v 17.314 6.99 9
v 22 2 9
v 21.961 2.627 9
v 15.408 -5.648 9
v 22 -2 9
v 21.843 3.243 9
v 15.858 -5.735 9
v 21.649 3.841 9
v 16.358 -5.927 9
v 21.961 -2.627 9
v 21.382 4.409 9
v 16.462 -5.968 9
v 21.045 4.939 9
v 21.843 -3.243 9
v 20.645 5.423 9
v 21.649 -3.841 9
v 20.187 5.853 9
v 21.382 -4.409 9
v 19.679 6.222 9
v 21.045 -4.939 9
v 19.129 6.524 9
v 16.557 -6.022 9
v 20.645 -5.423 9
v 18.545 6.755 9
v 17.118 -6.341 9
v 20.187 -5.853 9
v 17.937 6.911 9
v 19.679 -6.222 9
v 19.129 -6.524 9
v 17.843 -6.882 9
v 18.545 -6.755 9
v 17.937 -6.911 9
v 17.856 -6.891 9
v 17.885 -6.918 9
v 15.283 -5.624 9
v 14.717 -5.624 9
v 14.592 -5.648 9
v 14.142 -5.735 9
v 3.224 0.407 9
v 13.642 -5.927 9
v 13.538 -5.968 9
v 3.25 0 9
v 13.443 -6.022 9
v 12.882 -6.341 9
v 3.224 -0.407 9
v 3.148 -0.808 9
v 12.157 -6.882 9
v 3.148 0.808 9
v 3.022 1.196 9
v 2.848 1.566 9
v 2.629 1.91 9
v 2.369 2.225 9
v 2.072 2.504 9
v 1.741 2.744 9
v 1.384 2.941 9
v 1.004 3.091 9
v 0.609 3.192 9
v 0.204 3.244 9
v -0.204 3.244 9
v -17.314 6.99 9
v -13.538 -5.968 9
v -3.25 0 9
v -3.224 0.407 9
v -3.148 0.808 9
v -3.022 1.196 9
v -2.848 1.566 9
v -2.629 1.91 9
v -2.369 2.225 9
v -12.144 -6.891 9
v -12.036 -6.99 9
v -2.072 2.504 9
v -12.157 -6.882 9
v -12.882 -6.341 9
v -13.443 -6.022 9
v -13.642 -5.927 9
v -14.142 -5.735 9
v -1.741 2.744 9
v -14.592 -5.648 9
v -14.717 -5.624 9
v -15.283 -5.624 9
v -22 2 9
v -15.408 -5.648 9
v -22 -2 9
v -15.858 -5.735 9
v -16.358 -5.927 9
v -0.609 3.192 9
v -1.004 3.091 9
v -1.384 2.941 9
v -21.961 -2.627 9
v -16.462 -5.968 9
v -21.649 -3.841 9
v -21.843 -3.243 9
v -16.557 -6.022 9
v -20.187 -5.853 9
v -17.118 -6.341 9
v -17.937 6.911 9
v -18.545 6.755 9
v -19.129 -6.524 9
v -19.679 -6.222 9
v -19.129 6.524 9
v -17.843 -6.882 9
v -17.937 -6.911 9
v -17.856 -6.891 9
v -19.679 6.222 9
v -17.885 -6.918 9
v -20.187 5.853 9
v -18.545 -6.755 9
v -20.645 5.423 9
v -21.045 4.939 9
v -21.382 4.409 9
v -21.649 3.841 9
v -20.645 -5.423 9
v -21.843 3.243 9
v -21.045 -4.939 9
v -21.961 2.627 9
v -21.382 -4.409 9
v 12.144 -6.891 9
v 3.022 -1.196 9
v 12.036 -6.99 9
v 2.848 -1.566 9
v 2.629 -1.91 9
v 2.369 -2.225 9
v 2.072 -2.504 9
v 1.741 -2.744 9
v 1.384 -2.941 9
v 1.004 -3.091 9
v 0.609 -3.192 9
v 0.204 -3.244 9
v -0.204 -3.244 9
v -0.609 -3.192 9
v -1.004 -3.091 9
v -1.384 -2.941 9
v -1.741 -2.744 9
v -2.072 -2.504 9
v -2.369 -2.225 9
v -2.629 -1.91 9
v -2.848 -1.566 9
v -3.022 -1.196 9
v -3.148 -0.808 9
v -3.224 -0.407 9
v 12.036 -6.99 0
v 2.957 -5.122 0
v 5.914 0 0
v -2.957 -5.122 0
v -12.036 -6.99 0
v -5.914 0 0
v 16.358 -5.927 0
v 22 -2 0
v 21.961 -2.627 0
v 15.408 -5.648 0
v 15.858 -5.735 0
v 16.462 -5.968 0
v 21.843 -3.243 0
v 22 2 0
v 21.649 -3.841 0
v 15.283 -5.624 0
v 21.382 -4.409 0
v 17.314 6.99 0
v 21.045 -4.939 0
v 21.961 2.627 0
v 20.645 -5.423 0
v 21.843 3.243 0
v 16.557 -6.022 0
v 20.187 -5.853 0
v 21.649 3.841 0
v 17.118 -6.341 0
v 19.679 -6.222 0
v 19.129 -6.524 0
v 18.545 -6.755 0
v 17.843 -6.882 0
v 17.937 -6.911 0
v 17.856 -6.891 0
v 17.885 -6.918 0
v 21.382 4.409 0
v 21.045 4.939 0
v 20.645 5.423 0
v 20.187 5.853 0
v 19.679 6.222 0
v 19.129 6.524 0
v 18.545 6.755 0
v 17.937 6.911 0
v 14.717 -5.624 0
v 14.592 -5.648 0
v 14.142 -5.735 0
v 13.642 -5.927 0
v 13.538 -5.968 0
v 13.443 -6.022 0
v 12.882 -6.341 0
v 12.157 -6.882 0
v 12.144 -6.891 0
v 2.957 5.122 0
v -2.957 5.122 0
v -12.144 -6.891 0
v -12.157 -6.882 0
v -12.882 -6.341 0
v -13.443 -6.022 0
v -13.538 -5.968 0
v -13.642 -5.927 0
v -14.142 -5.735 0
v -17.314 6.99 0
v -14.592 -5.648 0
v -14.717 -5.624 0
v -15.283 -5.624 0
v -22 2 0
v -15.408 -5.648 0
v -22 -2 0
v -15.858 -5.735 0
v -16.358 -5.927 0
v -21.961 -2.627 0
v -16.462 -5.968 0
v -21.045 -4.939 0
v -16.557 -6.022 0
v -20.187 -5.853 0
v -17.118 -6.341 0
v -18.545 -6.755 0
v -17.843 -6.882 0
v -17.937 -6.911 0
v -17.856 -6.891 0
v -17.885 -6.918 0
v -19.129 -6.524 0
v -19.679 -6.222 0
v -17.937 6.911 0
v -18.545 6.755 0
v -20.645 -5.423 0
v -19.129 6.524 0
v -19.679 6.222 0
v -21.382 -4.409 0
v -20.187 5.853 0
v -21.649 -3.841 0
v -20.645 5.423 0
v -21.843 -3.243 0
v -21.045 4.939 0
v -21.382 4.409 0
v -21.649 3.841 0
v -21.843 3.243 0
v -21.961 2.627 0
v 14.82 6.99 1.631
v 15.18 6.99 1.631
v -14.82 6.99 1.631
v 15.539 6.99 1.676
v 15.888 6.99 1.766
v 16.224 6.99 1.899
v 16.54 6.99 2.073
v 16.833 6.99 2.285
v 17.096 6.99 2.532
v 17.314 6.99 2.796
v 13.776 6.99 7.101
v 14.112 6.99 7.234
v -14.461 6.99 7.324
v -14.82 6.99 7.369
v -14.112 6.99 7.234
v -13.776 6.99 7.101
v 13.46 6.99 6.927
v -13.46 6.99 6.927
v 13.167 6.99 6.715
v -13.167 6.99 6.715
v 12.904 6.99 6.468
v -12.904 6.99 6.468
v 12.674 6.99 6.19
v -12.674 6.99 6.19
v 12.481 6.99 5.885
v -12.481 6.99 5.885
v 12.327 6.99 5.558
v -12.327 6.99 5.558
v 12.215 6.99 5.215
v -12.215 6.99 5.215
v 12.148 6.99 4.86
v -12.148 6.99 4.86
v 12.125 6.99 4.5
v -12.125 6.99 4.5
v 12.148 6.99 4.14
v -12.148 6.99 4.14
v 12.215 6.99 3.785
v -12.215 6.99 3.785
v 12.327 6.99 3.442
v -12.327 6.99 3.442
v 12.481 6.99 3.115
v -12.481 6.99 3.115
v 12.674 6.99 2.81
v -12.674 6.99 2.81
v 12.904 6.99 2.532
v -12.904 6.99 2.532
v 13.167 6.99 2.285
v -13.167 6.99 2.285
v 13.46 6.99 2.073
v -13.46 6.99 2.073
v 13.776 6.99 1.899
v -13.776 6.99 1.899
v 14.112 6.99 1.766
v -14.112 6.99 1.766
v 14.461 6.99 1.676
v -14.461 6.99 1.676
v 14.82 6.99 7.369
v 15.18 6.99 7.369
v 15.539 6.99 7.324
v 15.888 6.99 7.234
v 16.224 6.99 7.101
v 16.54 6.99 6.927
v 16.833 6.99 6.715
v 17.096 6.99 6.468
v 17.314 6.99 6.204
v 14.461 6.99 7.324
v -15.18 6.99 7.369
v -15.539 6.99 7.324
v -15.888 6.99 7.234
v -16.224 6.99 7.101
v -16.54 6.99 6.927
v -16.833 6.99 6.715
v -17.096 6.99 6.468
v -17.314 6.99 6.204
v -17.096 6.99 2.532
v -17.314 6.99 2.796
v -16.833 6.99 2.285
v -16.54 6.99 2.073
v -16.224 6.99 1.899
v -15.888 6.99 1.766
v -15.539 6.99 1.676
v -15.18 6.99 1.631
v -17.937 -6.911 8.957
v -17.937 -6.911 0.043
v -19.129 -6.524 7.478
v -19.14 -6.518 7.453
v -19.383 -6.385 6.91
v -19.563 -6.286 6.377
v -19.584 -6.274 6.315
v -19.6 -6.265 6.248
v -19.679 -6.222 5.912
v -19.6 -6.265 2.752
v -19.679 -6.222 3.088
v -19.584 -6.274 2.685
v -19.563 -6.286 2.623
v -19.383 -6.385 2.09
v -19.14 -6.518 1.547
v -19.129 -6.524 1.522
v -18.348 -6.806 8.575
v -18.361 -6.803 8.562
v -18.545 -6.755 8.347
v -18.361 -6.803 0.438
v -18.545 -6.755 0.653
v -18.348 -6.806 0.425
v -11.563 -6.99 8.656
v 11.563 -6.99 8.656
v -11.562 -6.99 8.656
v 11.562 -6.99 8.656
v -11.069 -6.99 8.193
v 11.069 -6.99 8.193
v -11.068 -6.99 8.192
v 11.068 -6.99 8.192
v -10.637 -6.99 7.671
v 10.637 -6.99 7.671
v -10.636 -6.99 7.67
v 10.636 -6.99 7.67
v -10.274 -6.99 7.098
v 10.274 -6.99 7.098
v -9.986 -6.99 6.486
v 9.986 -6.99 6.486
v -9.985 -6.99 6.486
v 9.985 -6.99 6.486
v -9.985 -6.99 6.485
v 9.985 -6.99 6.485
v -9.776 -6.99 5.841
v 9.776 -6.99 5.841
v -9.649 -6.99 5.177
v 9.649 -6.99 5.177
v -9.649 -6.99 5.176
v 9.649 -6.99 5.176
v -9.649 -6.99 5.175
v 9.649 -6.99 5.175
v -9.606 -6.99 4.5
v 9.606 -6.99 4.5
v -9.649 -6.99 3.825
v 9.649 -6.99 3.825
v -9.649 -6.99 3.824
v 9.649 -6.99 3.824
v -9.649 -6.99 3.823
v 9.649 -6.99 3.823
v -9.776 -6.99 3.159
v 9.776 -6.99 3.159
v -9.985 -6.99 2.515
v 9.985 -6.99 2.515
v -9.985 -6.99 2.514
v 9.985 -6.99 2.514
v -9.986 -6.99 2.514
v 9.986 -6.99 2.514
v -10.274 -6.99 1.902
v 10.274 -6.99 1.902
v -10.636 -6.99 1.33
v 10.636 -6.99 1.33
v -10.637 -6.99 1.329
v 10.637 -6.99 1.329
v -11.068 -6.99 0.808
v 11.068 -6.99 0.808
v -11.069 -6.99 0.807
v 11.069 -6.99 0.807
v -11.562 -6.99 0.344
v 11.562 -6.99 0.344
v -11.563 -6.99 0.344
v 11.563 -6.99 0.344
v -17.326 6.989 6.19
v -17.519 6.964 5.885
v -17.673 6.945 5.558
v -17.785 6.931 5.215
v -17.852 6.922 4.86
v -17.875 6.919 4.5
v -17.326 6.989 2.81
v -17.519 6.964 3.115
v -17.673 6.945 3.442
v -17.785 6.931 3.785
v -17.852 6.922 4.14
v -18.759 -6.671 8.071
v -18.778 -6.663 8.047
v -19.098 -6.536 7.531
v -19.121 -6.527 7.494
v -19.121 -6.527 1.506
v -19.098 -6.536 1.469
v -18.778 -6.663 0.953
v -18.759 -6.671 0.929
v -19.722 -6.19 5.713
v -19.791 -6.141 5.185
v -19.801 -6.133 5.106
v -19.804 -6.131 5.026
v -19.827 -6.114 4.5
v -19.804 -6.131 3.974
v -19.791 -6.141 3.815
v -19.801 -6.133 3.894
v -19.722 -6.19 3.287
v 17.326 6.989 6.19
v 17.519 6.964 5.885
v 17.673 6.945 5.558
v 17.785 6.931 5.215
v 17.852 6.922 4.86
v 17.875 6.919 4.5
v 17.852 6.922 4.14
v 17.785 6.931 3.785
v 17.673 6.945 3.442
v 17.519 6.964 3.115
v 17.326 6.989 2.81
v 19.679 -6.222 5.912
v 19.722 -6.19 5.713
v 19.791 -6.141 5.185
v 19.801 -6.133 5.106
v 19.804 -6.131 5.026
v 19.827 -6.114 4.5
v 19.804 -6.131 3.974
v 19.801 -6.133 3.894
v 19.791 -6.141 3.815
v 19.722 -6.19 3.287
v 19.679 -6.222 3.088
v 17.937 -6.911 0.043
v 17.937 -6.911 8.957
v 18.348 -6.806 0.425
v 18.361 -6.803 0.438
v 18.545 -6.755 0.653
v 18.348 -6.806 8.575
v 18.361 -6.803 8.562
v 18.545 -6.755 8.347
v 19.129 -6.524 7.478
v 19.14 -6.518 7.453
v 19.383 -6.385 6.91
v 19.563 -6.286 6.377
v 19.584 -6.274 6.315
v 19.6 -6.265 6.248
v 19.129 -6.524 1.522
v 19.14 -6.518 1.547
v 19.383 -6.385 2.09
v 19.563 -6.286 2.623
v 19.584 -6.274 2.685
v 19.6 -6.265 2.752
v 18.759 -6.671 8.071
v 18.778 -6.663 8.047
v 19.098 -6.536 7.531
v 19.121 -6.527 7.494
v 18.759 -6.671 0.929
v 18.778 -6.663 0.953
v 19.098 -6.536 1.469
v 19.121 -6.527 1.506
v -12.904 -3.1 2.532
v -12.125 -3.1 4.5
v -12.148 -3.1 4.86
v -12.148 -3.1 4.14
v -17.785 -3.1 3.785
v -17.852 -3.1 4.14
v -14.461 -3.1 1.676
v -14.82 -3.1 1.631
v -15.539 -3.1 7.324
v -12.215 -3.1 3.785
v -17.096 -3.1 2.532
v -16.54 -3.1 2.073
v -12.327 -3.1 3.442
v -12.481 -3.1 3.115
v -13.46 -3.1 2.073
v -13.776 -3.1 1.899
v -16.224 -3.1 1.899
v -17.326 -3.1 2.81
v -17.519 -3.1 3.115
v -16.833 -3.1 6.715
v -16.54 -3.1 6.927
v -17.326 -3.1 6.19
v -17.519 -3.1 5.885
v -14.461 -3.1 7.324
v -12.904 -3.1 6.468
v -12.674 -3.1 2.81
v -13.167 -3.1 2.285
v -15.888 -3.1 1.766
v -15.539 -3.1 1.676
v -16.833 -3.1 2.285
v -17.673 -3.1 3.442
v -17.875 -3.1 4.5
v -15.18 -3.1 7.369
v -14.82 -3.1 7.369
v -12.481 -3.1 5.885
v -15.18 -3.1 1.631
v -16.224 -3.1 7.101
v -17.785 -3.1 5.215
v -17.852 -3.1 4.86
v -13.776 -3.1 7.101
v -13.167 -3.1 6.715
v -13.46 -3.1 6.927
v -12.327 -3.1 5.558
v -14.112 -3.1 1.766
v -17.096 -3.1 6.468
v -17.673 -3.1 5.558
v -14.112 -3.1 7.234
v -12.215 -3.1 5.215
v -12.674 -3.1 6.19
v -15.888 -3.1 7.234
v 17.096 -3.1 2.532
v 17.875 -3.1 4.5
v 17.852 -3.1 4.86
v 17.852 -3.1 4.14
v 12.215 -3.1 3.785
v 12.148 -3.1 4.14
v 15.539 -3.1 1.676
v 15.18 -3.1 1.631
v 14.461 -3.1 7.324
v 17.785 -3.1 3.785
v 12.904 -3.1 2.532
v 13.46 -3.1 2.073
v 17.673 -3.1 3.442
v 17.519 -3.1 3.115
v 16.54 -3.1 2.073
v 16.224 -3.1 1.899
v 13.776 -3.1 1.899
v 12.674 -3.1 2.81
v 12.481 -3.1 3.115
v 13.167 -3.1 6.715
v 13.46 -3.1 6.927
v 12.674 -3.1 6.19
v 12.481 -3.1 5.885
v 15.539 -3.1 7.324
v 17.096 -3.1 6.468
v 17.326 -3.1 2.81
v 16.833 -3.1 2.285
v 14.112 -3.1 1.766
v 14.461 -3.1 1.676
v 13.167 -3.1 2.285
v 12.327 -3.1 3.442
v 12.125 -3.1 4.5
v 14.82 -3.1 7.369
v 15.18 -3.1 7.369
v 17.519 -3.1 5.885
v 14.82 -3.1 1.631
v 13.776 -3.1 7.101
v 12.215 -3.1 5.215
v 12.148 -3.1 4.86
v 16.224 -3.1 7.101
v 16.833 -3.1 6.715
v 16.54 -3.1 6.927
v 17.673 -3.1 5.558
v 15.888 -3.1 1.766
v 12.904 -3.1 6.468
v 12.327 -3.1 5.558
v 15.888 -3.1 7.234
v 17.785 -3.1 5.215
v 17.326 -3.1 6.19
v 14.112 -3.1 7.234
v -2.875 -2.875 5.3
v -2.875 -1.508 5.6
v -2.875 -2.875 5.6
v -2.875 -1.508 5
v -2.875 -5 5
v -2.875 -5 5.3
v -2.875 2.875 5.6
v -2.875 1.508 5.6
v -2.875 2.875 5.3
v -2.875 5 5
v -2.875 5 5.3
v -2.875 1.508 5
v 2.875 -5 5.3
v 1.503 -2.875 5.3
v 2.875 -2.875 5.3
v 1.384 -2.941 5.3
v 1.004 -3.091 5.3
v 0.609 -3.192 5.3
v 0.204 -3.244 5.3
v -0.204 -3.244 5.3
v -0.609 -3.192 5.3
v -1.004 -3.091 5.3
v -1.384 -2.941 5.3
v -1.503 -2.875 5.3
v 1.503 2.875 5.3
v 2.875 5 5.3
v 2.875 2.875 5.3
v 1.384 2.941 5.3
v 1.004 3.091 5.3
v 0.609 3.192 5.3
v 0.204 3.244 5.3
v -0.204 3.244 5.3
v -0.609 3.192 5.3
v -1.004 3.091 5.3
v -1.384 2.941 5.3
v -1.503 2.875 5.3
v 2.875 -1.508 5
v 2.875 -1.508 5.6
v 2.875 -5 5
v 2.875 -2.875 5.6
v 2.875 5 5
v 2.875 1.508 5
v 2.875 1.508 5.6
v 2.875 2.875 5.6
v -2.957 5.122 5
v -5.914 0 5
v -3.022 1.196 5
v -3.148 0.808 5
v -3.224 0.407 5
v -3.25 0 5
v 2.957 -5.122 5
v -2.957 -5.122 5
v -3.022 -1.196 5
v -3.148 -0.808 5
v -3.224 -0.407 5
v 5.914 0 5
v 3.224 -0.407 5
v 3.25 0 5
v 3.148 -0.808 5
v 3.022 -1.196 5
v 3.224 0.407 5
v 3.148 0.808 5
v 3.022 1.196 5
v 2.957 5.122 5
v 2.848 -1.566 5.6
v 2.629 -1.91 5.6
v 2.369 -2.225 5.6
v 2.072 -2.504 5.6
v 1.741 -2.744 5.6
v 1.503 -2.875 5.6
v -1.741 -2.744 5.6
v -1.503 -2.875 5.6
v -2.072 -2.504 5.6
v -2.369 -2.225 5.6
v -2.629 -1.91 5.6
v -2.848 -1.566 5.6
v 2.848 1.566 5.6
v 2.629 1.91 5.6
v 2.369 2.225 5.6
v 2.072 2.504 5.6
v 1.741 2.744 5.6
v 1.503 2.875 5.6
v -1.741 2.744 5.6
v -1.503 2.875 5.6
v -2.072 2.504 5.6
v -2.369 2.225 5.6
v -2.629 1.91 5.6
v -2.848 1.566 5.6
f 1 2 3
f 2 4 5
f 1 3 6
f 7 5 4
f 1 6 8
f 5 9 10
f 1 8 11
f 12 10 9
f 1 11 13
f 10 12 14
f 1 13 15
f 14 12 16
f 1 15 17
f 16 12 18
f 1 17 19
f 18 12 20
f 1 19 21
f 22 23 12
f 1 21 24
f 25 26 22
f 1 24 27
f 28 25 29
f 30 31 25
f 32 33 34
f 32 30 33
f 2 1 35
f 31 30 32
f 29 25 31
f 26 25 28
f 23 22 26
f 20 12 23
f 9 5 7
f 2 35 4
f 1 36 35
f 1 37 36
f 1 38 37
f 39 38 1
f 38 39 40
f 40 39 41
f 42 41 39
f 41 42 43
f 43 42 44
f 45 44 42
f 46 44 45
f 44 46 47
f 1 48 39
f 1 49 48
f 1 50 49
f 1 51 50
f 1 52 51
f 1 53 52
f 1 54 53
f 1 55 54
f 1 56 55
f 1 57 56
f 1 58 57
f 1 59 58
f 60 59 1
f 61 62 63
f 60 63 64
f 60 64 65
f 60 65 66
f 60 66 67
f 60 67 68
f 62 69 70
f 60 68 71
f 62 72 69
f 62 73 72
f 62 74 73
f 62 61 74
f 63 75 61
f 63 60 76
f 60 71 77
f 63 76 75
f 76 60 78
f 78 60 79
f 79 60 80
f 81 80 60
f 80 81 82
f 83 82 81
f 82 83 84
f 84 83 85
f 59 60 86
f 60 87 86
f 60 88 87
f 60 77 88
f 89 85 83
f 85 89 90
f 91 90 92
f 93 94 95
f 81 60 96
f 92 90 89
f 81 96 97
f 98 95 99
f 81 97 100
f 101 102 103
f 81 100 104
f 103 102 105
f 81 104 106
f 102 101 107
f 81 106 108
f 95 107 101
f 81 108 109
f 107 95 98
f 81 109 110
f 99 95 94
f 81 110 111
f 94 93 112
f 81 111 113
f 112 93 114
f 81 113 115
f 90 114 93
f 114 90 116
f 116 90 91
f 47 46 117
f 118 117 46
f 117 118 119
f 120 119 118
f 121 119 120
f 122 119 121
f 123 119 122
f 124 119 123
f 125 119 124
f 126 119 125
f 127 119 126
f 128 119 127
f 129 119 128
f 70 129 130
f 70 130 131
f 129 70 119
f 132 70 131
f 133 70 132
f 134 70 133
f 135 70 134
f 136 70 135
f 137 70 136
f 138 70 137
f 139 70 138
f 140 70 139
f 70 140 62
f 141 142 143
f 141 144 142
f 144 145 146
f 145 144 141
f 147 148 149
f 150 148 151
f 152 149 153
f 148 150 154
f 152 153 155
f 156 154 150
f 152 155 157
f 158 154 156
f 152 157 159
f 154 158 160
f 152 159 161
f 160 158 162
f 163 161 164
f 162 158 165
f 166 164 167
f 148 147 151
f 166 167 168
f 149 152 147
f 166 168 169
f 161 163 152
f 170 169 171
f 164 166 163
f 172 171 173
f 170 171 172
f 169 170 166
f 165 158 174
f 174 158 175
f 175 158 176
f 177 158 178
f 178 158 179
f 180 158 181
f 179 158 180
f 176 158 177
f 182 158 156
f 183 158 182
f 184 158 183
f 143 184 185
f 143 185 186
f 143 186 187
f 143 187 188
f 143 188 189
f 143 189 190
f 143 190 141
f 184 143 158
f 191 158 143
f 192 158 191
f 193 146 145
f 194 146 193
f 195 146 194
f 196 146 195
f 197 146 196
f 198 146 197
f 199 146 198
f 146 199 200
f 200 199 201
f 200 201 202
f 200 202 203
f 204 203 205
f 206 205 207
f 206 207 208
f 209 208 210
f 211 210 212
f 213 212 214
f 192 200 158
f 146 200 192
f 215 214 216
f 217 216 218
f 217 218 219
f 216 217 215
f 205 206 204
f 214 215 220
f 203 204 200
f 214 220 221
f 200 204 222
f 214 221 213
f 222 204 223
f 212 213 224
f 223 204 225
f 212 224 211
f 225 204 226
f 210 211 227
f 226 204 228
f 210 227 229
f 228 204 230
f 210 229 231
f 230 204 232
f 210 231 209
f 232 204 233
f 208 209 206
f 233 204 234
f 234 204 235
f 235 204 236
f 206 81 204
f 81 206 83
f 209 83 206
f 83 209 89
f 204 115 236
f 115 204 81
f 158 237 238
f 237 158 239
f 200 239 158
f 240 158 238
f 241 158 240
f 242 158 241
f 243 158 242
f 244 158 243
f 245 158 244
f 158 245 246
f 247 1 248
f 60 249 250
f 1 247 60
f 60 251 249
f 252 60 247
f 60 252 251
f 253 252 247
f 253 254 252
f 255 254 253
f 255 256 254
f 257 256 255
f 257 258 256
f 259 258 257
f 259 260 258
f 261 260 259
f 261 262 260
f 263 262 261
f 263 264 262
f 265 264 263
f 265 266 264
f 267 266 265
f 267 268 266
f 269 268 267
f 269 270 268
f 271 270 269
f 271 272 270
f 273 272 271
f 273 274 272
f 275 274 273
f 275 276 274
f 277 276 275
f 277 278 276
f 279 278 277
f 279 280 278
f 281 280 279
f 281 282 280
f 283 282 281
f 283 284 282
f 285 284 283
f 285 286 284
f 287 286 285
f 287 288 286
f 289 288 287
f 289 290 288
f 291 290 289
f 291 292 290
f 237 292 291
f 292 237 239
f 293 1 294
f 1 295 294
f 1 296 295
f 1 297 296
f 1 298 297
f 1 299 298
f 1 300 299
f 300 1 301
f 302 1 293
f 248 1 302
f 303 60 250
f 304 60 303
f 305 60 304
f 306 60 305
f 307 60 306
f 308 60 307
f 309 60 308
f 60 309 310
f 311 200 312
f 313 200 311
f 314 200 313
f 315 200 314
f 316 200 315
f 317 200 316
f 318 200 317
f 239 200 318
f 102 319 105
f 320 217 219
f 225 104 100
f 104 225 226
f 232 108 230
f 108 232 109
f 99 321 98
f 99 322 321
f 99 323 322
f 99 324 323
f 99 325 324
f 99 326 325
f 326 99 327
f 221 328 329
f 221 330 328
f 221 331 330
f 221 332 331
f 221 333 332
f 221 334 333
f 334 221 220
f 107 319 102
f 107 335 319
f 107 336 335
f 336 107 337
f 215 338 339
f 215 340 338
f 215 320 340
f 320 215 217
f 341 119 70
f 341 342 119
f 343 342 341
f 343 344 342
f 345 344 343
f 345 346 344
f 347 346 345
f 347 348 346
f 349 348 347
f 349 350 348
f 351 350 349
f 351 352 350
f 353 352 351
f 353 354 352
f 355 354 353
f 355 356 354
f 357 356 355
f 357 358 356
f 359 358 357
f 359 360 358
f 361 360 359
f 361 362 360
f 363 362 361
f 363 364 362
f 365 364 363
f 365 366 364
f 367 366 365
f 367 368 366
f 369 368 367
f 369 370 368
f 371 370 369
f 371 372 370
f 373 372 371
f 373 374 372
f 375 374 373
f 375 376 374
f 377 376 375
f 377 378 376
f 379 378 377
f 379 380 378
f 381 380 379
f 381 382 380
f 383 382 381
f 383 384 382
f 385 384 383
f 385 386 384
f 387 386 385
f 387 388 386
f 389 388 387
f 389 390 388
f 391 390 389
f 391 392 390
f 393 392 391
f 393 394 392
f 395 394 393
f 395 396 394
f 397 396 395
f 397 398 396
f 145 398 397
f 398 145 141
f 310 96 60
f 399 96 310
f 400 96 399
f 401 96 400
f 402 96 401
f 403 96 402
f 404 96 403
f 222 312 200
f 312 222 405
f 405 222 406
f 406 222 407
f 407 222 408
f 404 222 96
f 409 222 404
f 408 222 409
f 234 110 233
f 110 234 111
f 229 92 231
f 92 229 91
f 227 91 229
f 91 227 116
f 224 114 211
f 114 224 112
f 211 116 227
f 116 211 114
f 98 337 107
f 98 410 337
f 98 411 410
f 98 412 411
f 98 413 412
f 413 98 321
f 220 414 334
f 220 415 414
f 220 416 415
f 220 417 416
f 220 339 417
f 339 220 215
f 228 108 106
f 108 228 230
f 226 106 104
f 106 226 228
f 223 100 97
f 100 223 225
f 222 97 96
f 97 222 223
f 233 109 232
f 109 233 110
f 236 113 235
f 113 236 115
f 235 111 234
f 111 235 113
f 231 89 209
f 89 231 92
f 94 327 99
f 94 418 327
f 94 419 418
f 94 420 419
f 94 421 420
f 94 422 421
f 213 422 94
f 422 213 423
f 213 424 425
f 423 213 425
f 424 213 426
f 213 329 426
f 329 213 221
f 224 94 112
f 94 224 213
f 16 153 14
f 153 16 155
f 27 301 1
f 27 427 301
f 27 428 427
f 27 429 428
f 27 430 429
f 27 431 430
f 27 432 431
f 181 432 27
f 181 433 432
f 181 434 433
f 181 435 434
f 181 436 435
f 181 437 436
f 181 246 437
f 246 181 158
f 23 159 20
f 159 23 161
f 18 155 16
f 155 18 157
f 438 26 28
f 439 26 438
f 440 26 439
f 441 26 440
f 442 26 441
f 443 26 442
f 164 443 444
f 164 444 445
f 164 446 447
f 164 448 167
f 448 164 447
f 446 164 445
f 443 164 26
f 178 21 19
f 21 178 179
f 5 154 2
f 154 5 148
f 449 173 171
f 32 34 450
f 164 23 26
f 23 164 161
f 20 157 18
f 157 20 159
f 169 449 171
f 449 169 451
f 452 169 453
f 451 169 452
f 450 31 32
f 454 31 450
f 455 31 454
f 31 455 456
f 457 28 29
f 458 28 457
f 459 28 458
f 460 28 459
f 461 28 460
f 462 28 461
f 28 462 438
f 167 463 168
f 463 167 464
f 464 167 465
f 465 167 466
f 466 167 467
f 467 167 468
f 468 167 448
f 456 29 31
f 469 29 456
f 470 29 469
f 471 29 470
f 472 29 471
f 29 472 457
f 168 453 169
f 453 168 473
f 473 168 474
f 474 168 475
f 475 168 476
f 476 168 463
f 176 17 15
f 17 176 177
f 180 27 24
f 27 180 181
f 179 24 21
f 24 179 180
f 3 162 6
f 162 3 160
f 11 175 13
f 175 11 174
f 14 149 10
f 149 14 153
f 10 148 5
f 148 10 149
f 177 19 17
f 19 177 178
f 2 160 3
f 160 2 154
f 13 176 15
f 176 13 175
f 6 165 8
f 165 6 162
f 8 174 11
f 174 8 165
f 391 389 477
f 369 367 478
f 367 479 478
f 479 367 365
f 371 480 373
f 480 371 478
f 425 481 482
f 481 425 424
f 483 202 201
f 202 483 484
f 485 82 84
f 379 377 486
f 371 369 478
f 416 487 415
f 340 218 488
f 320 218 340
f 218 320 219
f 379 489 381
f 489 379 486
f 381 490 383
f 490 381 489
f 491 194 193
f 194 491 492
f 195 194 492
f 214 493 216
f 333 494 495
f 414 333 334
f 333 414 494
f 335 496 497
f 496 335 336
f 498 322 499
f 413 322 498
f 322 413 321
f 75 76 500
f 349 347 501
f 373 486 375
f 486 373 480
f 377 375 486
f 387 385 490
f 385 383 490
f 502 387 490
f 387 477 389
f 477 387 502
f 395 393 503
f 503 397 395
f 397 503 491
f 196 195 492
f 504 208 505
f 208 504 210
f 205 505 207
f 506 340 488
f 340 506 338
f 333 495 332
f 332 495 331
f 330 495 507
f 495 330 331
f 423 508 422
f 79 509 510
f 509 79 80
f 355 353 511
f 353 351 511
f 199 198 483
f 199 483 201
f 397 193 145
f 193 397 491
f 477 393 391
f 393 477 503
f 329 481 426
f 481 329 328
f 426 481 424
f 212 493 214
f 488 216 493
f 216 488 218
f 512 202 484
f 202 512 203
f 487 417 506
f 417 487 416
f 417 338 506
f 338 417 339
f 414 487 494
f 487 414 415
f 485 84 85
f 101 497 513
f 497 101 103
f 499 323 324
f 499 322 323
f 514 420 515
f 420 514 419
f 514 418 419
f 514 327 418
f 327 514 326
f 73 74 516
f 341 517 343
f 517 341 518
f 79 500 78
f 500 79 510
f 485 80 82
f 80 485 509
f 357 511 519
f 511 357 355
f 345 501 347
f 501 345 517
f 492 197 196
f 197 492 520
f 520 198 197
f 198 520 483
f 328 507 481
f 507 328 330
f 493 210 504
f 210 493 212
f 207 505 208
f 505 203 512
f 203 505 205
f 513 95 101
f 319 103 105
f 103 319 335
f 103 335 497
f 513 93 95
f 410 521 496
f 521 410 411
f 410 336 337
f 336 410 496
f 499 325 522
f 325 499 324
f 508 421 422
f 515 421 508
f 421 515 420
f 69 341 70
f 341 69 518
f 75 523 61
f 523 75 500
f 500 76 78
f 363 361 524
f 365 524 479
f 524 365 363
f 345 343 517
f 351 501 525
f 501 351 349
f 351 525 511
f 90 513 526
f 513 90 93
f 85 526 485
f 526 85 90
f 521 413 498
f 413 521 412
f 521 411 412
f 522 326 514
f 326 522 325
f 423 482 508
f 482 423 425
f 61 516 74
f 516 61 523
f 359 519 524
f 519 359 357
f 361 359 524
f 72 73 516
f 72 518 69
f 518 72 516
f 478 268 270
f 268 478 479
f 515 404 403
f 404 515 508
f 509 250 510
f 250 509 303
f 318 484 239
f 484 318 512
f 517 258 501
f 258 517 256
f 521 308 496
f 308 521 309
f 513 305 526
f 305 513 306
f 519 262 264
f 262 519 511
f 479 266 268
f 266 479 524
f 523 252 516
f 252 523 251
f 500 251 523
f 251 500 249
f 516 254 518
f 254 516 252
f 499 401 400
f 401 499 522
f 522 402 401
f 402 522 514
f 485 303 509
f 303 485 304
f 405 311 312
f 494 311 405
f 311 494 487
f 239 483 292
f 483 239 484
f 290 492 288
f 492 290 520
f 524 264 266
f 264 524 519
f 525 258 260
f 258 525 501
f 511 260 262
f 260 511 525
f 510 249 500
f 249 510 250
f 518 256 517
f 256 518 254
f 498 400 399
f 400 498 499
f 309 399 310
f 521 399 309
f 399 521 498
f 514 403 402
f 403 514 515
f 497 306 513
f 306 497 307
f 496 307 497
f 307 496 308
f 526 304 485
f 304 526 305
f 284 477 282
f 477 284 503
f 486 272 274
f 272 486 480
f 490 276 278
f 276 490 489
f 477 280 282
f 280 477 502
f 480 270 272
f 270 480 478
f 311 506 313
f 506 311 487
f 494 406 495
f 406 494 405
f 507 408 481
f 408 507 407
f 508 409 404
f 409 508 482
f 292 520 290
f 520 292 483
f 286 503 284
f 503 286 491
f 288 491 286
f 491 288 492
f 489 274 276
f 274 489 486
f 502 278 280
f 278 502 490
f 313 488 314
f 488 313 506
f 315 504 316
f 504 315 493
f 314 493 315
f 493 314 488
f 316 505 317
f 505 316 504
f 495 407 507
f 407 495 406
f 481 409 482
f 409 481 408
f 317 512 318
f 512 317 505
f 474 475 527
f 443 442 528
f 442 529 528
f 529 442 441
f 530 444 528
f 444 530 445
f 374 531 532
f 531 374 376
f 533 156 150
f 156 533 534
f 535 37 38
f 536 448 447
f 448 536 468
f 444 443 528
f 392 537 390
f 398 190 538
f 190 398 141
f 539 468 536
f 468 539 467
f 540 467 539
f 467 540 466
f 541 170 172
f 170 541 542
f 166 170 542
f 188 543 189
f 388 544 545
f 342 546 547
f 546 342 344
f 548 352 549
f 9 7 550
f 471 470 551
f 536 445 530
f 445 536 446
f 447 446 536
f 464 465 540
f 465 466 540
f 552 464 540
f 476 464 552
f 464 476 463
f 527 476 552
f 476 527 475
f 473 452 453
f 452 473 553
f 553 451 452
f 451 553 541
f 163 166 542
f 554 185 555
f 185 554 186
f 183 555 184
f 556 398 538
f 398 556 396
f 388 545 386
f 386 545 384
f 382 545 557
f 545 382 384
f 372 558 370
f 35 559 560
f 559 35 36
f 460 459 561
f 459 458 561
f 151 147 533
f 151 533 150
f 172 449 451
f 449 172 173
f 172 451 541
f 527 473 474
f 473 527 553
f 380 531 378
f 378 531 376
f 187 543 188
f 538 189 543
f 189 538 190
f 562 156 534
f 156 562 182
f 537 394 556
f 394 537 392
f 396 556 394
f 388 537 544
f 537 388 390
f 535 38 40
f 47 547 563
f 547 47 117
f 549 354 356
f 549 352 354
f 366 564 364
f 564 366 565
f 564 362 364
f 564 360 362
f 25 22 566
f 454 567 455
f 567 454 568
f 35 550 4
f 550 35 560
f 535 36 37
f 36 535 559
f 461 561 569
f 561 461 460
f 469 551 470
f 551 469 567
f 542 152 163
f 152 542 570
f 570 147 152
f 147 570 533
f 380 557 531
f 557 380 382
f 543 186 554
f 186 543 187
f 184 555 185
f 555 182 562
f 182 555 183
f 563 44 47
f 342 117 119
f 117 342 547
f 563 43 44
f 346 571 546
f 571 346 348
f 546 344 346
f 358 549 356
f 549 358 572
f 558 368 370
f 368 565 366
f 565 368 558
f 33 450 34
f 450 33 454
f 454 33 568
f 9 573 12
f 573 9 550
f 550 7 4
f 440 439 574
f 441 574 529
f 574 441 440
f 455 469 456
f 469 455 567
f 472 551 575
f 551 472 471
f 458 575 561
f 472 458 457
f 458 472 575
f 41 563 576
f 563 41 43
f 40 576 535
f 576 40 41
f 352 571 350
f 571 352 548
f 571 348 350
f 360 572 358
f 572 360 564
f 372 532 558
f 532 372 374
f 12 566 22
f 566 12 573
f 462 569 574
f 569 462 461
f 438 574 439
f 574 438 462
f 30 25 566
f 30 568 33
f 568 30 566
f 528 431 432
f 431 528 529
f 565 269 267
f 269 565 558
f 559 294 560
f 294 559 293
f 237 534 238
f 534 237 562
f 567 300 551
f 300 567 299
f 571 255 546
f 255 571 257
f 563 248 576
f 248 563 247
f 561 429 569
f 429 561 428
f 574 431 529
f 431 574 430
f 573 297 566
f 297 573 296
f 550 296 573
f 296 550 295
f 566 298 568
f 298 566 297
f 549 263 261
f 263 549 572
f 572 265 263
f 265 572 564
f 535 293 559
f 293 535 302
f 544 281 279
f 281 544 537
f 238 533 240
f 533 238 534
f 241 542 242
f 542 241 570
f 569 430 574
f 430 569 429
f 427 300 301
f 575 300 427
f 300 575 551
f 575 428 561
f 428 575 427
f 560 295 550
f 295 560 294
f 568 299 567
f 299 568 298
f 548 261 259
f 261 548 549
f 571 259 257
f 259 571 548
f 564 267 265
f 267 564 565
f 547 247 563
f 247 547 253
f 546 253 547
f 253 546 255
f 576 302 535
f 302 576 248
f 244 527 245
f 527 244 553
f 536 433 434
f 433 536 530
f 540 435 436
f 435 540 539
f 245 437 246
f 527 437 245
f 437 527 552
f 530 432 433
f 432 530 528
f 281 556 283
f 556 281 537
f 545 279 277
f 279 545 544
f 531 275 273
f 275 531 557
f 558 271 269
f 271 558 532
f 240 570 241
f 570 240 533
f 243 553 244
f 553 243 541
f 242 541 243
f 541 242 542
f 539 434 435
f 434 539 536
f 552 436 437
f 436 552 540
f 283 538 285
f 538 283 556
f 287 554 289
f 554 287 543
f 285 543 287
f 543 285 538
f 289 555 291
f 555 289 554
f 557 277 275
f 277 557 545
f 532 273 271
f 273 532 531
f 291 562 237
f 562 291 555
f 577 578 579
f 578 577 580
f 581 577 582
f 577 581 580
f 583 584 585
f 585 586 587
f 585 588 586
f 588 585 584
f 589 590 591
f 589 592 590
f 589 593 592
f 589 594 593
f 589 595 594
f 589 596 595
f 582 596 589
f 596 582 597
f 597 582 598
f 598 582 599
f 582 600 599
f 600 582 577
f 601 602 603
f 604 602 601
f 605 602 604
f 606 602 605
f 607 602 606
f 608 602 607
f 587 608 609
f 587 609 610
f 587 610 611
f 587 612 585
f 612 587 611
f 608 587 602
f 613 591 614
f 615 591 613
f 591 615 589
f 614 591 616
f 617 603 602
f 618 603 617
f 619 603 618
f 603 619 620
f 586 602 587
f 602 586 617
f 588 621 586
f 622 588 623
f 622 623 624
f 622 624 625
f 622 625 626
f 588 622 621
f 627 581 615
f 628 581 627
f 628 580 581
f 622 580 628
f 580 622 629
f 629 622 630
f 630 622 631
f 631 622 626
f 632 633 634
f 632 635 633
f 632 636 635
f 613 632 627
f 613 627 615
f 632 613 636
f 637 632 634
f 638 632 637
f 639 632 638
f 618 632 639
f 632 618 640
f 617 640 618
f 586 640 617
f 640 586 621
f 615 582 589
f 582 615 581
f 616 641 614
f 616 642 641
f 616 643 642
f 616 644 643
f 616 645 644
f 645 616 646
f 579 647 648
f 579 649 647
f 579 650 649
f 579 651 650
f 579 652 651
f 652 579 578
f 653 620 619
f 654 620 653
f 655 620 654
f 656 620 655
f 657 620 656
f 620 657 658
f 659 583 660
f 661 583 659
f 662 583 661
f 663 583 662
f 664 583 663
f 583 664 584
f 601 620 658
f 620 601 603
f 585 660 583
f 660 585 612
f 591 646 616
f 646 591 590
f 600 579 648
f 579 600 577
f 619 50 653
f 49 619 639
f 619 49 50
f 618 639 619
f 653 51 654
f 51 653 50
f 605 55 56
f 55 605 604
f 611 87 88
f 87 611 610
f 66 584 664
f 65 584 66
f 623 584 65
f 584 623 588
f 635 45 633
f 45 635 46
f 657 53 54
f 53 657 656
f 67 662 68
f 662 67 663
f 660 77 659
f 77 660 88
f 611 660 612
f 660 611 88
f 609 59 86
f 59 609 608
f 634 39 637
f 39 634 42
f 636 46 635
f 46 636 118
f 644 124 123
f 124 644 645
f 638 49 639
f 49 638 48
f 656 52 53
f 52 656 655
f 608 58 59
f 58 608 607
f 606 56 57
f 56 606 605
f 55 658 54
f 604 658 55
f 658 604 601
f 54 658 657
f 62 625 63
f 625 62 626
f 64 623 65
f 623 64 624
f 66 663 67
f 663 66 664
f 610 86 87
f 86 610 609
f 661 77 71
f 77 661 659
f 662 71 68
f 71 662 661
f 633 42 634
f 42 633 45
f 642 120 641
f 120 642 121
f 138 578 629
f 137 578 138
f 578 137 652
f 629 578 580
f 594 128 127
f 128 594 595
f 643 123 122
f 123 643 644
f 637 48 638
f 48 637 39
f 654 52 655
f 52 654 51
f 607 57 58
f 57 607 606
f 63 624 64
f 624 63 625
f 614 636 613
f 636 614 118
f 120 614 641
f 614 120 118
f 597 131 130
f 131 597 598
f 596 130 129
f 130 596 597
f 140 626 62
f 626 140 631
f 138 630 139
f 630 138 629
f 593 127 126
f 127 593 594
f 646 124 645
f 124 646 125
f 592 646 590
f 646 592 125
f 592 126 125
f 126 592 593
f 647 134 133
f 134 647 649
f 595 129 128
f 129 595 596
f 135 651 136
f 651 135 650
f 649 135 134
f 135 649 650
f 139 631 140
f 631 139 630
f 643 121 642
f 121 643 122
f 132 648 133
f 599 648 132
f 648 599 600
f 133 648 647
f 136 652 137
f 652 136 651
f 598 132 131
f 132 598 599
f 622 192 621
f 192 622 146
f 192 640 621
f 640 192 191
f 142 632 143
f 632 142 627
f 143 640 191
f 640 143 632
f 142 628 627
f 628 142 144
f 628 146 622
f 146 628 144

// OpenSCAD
$fn = 50;


difference() {
	union() {
		cylinder(h = 9, r = 7.0000000000);
		translate(v = [-7.5000000000, 0.0000000000, 0]) {
			hull() {
				translate(v = [-9.5000000000, 2.0000000000, 0]) {
					cylinder(h = 9, r = 5);
				}
				translate(v = [9.5000000000, 2.0000000000, 0]) {
					cylinder(h = 9, r = 5);
				}
				translate(v = [-9.5000000000, -2.0000000000, 0]) {
					cylinder(h = 9, r = 5);
				}
				translate(v = [9.5000000000, -2.0000000000, 0]) {
					cylinder(h = 9, r = 5);
				}
			}
		}
		translate(v = [-7.5000000000, 0.0000000000, 0]) {
			hull() {
				translate(v = [-9.5000000000, 2.0000000000, 0]) {
					cylinder(h = 9, r = 5);
				}
				translate(v = [9.5000000000, 2.0000000000, 0]) {
					cylinder(h = 9, r = 5);
				}
				translate(v = [-9.5000000000, -2.0000000000, 0]) {
					cylinder(h = 9, r = 5);
				}
				translate(v = [9.5000000000, -2.0000000000, 0]) {
					cylinder(h = 9, r = 5);
				}
			}
		}
		translate(v = [7.5000000000, 0.0000000000, 0]) {
			hull() {
				translate(v = [-9.5000000000, 2.0000000000, 0]) {
					cylinder(h = 9, r = 5);
				}
				translate(v = [9.5000000000, 2.0000000000, 0]) {
					cylinder(h = 9, r = 5);
				}
				translate(v = [-9.5000000000, -2.0000000000, 0]) {
					cylinder(h = 9, r = 5);
				}
				translate(v = [9.5000000000, -2.0000000000, 0]) {
					cylinder(h = 9, r = 5);
				}
			}
		}
		translate(v = [7.5000000000, 0.0000000000, 0]) {
			hull() {
				translate(v = [-9.5000000000, 2.0000000000, 0]) {
					cylinder(h = 9, r = 5);
				}
				translate(v = [9.5000000000, 2.0000000000, 0]) {
					cylinder(h = 9, r = 5);
				}
				translate(v = [-9.5000000000, -2.0000000000, 0]) {
					cylinder(h = 9, r = 5);
				}
				translate(v = [9.5000000000, -2.0000000000, 0]) {
					cylinder(h = 9, r = 5);
				}
			}
		}
	}
	union() {
		translate(v = [-15.0000000000, -7.0000000000, 4.5000000000]) {
			rotate(a = [90, 0, 0]) {
				difference() {
					union() {
						#translate(v = [0, 0, -14.0000000000]) {
							cylinder(h = 14, r = 2.6000000000);
						}
						#translate(v = [0, 0, -3.9000000000]) {
							cylinder(h = 3.9000000000, r1 = 2.8750000000, r2 = 5.4000000000);
						}
						#translate(v = [0, 0, -14.0000000000]) {
							cylinder(h = 14, r = 2.8750000000);
						}
						#translate(v = [0, 0, -14.0000000000]) {
							cylinder(h = 14, r = 2.6000000000);
						}
					}
					union();
				}
			}
		}
		translate(v = [15.0000000000, -7.0000000000, 4.5000000000]) {
			rotate(a = [90, 0, 0]) {
				difference() {
					union() {
						#translate(v = [0, 0, -14.0000000000]) {
							cylinder(h = 14, r = 2.6000000000);
						}
						#translate(v = [0, 0, -3.9000000000]) {
							cylinder(h = 3.9000000000, r1 = 2.8750000000, r2 = 5.4000000000);
						}
						#translate(v = [0, 0, -14.0000000000]) {
							cylinder(h = 14, r = 2.8750000000);
						}
						#translate(v = [0, 0, -14.0000000000]) {
							cylinder(h = 14, r = 2.6000000000);
						}
					}
					union();
				}
			}
		}
		translate(v = [0.0000000000, 0.0000000000, 0]) {
			rotate(a = [0, 0, 0]) {
				difference() {
					union() {
						#translate(v = [-2.8750000000, -5.0000000000, -0.3000000000]) {
							cube(size = [5.7500000000, 10, 0.3000000000]);
						}
						#translate(v = [-2.8750000000, -2.8750000000, -0.6000000000]) {
							cube(size = [5.7500000000, 5.7500000000, 0.3000000000]);
						}
						#translate(v = [-2.8750000000, -5.0000000000, 5]) {
							cube(size = [5.7500000000, 10, 0.3000000000]);
						}
						#translate(v = [-2.8750000000, -2.8750000000, 5.3000000000]) {
							cube(size = [5.7500000000, 5.7500000000, 0.3000000000]);
						}
						#translate(v = [0, 0, -100.0000000000]) {
							cylinder(h = 200, r = 3.2500000000);
						}
						#linear_extrude(height = 5) {
							polygon(points = [[5.9142500000, 0.0000000000], [2.9571250000, 5.1218907443], [-2.9571250000, 5.1218907443], [-5.9142500000, 0.0000000000], [-2.9571250000, -5.1218907443], [2.9571250000, -5.1218907443]]);
						}
						#translate(v = [-2.8750000000, -5.0000000000, -0.3000000000]) {
							cube(size = [5.7500000000, 10, 0.3000000000]);
						}
						#translate(v = [-2.8750000000, -2.8750000000, -0.6000000000]) {
							cube(size = [5.7500000000, 5.7500000000, 0.3000000000]);
						}
						#translate(v = [-2.8750000000, -5.0000000000, 5]) {
							cube(size = [5.7500000000, 10, 0.3000000000]);
						}
						#translate(v = [-2.8750000000, -2.8750000000, 5.3000000000]) {
							cube(size = [5.7500000000, 5.7500000000, 0.3000000000]);
						}
						#translate(v = [0, 0, -100.0000000000]) {
							cylinder(h = 200, r = 3.2500000000);
						}
						#translate(v = [-2.8750000000, -5.0000000000, -0.3000000000]) {
							cube(size = [5.7500000000, 10, 0.3000000000]);
						}
						#translate(v = [-2.8750000000, -2.8750000000, -0.6000000000]) {
							cube(size = [5.7500000000, 5.7500000000, 0.3000000000]);
						}
						#translate(v = [-2.8750000000, -5.0000000000, 5]) {
							cube(size = [5.7500000000, 10, 0.3000000000]);
						}
						#translate(v = [-2.8750000000, -2.8750000000, 5.3000000000]) {
							cube(size = [5.7500000000, 5.7500000000, 0.3000000000]);
						}
						#translate(v = [0, 0, -100.0000000000]) {
							cylinder(h = 200, r = 3.2500000000);
						}
					}
					union();
				}
			}
		}
		translate(v = [0, 0, -100]) {
			cylinder(h = 200, r = 3.2500000000);
		}
		translate(v = [0, 0, -100]) {
			cylinder(h = 200, r = 1.8000000000);
		}
	}
}
